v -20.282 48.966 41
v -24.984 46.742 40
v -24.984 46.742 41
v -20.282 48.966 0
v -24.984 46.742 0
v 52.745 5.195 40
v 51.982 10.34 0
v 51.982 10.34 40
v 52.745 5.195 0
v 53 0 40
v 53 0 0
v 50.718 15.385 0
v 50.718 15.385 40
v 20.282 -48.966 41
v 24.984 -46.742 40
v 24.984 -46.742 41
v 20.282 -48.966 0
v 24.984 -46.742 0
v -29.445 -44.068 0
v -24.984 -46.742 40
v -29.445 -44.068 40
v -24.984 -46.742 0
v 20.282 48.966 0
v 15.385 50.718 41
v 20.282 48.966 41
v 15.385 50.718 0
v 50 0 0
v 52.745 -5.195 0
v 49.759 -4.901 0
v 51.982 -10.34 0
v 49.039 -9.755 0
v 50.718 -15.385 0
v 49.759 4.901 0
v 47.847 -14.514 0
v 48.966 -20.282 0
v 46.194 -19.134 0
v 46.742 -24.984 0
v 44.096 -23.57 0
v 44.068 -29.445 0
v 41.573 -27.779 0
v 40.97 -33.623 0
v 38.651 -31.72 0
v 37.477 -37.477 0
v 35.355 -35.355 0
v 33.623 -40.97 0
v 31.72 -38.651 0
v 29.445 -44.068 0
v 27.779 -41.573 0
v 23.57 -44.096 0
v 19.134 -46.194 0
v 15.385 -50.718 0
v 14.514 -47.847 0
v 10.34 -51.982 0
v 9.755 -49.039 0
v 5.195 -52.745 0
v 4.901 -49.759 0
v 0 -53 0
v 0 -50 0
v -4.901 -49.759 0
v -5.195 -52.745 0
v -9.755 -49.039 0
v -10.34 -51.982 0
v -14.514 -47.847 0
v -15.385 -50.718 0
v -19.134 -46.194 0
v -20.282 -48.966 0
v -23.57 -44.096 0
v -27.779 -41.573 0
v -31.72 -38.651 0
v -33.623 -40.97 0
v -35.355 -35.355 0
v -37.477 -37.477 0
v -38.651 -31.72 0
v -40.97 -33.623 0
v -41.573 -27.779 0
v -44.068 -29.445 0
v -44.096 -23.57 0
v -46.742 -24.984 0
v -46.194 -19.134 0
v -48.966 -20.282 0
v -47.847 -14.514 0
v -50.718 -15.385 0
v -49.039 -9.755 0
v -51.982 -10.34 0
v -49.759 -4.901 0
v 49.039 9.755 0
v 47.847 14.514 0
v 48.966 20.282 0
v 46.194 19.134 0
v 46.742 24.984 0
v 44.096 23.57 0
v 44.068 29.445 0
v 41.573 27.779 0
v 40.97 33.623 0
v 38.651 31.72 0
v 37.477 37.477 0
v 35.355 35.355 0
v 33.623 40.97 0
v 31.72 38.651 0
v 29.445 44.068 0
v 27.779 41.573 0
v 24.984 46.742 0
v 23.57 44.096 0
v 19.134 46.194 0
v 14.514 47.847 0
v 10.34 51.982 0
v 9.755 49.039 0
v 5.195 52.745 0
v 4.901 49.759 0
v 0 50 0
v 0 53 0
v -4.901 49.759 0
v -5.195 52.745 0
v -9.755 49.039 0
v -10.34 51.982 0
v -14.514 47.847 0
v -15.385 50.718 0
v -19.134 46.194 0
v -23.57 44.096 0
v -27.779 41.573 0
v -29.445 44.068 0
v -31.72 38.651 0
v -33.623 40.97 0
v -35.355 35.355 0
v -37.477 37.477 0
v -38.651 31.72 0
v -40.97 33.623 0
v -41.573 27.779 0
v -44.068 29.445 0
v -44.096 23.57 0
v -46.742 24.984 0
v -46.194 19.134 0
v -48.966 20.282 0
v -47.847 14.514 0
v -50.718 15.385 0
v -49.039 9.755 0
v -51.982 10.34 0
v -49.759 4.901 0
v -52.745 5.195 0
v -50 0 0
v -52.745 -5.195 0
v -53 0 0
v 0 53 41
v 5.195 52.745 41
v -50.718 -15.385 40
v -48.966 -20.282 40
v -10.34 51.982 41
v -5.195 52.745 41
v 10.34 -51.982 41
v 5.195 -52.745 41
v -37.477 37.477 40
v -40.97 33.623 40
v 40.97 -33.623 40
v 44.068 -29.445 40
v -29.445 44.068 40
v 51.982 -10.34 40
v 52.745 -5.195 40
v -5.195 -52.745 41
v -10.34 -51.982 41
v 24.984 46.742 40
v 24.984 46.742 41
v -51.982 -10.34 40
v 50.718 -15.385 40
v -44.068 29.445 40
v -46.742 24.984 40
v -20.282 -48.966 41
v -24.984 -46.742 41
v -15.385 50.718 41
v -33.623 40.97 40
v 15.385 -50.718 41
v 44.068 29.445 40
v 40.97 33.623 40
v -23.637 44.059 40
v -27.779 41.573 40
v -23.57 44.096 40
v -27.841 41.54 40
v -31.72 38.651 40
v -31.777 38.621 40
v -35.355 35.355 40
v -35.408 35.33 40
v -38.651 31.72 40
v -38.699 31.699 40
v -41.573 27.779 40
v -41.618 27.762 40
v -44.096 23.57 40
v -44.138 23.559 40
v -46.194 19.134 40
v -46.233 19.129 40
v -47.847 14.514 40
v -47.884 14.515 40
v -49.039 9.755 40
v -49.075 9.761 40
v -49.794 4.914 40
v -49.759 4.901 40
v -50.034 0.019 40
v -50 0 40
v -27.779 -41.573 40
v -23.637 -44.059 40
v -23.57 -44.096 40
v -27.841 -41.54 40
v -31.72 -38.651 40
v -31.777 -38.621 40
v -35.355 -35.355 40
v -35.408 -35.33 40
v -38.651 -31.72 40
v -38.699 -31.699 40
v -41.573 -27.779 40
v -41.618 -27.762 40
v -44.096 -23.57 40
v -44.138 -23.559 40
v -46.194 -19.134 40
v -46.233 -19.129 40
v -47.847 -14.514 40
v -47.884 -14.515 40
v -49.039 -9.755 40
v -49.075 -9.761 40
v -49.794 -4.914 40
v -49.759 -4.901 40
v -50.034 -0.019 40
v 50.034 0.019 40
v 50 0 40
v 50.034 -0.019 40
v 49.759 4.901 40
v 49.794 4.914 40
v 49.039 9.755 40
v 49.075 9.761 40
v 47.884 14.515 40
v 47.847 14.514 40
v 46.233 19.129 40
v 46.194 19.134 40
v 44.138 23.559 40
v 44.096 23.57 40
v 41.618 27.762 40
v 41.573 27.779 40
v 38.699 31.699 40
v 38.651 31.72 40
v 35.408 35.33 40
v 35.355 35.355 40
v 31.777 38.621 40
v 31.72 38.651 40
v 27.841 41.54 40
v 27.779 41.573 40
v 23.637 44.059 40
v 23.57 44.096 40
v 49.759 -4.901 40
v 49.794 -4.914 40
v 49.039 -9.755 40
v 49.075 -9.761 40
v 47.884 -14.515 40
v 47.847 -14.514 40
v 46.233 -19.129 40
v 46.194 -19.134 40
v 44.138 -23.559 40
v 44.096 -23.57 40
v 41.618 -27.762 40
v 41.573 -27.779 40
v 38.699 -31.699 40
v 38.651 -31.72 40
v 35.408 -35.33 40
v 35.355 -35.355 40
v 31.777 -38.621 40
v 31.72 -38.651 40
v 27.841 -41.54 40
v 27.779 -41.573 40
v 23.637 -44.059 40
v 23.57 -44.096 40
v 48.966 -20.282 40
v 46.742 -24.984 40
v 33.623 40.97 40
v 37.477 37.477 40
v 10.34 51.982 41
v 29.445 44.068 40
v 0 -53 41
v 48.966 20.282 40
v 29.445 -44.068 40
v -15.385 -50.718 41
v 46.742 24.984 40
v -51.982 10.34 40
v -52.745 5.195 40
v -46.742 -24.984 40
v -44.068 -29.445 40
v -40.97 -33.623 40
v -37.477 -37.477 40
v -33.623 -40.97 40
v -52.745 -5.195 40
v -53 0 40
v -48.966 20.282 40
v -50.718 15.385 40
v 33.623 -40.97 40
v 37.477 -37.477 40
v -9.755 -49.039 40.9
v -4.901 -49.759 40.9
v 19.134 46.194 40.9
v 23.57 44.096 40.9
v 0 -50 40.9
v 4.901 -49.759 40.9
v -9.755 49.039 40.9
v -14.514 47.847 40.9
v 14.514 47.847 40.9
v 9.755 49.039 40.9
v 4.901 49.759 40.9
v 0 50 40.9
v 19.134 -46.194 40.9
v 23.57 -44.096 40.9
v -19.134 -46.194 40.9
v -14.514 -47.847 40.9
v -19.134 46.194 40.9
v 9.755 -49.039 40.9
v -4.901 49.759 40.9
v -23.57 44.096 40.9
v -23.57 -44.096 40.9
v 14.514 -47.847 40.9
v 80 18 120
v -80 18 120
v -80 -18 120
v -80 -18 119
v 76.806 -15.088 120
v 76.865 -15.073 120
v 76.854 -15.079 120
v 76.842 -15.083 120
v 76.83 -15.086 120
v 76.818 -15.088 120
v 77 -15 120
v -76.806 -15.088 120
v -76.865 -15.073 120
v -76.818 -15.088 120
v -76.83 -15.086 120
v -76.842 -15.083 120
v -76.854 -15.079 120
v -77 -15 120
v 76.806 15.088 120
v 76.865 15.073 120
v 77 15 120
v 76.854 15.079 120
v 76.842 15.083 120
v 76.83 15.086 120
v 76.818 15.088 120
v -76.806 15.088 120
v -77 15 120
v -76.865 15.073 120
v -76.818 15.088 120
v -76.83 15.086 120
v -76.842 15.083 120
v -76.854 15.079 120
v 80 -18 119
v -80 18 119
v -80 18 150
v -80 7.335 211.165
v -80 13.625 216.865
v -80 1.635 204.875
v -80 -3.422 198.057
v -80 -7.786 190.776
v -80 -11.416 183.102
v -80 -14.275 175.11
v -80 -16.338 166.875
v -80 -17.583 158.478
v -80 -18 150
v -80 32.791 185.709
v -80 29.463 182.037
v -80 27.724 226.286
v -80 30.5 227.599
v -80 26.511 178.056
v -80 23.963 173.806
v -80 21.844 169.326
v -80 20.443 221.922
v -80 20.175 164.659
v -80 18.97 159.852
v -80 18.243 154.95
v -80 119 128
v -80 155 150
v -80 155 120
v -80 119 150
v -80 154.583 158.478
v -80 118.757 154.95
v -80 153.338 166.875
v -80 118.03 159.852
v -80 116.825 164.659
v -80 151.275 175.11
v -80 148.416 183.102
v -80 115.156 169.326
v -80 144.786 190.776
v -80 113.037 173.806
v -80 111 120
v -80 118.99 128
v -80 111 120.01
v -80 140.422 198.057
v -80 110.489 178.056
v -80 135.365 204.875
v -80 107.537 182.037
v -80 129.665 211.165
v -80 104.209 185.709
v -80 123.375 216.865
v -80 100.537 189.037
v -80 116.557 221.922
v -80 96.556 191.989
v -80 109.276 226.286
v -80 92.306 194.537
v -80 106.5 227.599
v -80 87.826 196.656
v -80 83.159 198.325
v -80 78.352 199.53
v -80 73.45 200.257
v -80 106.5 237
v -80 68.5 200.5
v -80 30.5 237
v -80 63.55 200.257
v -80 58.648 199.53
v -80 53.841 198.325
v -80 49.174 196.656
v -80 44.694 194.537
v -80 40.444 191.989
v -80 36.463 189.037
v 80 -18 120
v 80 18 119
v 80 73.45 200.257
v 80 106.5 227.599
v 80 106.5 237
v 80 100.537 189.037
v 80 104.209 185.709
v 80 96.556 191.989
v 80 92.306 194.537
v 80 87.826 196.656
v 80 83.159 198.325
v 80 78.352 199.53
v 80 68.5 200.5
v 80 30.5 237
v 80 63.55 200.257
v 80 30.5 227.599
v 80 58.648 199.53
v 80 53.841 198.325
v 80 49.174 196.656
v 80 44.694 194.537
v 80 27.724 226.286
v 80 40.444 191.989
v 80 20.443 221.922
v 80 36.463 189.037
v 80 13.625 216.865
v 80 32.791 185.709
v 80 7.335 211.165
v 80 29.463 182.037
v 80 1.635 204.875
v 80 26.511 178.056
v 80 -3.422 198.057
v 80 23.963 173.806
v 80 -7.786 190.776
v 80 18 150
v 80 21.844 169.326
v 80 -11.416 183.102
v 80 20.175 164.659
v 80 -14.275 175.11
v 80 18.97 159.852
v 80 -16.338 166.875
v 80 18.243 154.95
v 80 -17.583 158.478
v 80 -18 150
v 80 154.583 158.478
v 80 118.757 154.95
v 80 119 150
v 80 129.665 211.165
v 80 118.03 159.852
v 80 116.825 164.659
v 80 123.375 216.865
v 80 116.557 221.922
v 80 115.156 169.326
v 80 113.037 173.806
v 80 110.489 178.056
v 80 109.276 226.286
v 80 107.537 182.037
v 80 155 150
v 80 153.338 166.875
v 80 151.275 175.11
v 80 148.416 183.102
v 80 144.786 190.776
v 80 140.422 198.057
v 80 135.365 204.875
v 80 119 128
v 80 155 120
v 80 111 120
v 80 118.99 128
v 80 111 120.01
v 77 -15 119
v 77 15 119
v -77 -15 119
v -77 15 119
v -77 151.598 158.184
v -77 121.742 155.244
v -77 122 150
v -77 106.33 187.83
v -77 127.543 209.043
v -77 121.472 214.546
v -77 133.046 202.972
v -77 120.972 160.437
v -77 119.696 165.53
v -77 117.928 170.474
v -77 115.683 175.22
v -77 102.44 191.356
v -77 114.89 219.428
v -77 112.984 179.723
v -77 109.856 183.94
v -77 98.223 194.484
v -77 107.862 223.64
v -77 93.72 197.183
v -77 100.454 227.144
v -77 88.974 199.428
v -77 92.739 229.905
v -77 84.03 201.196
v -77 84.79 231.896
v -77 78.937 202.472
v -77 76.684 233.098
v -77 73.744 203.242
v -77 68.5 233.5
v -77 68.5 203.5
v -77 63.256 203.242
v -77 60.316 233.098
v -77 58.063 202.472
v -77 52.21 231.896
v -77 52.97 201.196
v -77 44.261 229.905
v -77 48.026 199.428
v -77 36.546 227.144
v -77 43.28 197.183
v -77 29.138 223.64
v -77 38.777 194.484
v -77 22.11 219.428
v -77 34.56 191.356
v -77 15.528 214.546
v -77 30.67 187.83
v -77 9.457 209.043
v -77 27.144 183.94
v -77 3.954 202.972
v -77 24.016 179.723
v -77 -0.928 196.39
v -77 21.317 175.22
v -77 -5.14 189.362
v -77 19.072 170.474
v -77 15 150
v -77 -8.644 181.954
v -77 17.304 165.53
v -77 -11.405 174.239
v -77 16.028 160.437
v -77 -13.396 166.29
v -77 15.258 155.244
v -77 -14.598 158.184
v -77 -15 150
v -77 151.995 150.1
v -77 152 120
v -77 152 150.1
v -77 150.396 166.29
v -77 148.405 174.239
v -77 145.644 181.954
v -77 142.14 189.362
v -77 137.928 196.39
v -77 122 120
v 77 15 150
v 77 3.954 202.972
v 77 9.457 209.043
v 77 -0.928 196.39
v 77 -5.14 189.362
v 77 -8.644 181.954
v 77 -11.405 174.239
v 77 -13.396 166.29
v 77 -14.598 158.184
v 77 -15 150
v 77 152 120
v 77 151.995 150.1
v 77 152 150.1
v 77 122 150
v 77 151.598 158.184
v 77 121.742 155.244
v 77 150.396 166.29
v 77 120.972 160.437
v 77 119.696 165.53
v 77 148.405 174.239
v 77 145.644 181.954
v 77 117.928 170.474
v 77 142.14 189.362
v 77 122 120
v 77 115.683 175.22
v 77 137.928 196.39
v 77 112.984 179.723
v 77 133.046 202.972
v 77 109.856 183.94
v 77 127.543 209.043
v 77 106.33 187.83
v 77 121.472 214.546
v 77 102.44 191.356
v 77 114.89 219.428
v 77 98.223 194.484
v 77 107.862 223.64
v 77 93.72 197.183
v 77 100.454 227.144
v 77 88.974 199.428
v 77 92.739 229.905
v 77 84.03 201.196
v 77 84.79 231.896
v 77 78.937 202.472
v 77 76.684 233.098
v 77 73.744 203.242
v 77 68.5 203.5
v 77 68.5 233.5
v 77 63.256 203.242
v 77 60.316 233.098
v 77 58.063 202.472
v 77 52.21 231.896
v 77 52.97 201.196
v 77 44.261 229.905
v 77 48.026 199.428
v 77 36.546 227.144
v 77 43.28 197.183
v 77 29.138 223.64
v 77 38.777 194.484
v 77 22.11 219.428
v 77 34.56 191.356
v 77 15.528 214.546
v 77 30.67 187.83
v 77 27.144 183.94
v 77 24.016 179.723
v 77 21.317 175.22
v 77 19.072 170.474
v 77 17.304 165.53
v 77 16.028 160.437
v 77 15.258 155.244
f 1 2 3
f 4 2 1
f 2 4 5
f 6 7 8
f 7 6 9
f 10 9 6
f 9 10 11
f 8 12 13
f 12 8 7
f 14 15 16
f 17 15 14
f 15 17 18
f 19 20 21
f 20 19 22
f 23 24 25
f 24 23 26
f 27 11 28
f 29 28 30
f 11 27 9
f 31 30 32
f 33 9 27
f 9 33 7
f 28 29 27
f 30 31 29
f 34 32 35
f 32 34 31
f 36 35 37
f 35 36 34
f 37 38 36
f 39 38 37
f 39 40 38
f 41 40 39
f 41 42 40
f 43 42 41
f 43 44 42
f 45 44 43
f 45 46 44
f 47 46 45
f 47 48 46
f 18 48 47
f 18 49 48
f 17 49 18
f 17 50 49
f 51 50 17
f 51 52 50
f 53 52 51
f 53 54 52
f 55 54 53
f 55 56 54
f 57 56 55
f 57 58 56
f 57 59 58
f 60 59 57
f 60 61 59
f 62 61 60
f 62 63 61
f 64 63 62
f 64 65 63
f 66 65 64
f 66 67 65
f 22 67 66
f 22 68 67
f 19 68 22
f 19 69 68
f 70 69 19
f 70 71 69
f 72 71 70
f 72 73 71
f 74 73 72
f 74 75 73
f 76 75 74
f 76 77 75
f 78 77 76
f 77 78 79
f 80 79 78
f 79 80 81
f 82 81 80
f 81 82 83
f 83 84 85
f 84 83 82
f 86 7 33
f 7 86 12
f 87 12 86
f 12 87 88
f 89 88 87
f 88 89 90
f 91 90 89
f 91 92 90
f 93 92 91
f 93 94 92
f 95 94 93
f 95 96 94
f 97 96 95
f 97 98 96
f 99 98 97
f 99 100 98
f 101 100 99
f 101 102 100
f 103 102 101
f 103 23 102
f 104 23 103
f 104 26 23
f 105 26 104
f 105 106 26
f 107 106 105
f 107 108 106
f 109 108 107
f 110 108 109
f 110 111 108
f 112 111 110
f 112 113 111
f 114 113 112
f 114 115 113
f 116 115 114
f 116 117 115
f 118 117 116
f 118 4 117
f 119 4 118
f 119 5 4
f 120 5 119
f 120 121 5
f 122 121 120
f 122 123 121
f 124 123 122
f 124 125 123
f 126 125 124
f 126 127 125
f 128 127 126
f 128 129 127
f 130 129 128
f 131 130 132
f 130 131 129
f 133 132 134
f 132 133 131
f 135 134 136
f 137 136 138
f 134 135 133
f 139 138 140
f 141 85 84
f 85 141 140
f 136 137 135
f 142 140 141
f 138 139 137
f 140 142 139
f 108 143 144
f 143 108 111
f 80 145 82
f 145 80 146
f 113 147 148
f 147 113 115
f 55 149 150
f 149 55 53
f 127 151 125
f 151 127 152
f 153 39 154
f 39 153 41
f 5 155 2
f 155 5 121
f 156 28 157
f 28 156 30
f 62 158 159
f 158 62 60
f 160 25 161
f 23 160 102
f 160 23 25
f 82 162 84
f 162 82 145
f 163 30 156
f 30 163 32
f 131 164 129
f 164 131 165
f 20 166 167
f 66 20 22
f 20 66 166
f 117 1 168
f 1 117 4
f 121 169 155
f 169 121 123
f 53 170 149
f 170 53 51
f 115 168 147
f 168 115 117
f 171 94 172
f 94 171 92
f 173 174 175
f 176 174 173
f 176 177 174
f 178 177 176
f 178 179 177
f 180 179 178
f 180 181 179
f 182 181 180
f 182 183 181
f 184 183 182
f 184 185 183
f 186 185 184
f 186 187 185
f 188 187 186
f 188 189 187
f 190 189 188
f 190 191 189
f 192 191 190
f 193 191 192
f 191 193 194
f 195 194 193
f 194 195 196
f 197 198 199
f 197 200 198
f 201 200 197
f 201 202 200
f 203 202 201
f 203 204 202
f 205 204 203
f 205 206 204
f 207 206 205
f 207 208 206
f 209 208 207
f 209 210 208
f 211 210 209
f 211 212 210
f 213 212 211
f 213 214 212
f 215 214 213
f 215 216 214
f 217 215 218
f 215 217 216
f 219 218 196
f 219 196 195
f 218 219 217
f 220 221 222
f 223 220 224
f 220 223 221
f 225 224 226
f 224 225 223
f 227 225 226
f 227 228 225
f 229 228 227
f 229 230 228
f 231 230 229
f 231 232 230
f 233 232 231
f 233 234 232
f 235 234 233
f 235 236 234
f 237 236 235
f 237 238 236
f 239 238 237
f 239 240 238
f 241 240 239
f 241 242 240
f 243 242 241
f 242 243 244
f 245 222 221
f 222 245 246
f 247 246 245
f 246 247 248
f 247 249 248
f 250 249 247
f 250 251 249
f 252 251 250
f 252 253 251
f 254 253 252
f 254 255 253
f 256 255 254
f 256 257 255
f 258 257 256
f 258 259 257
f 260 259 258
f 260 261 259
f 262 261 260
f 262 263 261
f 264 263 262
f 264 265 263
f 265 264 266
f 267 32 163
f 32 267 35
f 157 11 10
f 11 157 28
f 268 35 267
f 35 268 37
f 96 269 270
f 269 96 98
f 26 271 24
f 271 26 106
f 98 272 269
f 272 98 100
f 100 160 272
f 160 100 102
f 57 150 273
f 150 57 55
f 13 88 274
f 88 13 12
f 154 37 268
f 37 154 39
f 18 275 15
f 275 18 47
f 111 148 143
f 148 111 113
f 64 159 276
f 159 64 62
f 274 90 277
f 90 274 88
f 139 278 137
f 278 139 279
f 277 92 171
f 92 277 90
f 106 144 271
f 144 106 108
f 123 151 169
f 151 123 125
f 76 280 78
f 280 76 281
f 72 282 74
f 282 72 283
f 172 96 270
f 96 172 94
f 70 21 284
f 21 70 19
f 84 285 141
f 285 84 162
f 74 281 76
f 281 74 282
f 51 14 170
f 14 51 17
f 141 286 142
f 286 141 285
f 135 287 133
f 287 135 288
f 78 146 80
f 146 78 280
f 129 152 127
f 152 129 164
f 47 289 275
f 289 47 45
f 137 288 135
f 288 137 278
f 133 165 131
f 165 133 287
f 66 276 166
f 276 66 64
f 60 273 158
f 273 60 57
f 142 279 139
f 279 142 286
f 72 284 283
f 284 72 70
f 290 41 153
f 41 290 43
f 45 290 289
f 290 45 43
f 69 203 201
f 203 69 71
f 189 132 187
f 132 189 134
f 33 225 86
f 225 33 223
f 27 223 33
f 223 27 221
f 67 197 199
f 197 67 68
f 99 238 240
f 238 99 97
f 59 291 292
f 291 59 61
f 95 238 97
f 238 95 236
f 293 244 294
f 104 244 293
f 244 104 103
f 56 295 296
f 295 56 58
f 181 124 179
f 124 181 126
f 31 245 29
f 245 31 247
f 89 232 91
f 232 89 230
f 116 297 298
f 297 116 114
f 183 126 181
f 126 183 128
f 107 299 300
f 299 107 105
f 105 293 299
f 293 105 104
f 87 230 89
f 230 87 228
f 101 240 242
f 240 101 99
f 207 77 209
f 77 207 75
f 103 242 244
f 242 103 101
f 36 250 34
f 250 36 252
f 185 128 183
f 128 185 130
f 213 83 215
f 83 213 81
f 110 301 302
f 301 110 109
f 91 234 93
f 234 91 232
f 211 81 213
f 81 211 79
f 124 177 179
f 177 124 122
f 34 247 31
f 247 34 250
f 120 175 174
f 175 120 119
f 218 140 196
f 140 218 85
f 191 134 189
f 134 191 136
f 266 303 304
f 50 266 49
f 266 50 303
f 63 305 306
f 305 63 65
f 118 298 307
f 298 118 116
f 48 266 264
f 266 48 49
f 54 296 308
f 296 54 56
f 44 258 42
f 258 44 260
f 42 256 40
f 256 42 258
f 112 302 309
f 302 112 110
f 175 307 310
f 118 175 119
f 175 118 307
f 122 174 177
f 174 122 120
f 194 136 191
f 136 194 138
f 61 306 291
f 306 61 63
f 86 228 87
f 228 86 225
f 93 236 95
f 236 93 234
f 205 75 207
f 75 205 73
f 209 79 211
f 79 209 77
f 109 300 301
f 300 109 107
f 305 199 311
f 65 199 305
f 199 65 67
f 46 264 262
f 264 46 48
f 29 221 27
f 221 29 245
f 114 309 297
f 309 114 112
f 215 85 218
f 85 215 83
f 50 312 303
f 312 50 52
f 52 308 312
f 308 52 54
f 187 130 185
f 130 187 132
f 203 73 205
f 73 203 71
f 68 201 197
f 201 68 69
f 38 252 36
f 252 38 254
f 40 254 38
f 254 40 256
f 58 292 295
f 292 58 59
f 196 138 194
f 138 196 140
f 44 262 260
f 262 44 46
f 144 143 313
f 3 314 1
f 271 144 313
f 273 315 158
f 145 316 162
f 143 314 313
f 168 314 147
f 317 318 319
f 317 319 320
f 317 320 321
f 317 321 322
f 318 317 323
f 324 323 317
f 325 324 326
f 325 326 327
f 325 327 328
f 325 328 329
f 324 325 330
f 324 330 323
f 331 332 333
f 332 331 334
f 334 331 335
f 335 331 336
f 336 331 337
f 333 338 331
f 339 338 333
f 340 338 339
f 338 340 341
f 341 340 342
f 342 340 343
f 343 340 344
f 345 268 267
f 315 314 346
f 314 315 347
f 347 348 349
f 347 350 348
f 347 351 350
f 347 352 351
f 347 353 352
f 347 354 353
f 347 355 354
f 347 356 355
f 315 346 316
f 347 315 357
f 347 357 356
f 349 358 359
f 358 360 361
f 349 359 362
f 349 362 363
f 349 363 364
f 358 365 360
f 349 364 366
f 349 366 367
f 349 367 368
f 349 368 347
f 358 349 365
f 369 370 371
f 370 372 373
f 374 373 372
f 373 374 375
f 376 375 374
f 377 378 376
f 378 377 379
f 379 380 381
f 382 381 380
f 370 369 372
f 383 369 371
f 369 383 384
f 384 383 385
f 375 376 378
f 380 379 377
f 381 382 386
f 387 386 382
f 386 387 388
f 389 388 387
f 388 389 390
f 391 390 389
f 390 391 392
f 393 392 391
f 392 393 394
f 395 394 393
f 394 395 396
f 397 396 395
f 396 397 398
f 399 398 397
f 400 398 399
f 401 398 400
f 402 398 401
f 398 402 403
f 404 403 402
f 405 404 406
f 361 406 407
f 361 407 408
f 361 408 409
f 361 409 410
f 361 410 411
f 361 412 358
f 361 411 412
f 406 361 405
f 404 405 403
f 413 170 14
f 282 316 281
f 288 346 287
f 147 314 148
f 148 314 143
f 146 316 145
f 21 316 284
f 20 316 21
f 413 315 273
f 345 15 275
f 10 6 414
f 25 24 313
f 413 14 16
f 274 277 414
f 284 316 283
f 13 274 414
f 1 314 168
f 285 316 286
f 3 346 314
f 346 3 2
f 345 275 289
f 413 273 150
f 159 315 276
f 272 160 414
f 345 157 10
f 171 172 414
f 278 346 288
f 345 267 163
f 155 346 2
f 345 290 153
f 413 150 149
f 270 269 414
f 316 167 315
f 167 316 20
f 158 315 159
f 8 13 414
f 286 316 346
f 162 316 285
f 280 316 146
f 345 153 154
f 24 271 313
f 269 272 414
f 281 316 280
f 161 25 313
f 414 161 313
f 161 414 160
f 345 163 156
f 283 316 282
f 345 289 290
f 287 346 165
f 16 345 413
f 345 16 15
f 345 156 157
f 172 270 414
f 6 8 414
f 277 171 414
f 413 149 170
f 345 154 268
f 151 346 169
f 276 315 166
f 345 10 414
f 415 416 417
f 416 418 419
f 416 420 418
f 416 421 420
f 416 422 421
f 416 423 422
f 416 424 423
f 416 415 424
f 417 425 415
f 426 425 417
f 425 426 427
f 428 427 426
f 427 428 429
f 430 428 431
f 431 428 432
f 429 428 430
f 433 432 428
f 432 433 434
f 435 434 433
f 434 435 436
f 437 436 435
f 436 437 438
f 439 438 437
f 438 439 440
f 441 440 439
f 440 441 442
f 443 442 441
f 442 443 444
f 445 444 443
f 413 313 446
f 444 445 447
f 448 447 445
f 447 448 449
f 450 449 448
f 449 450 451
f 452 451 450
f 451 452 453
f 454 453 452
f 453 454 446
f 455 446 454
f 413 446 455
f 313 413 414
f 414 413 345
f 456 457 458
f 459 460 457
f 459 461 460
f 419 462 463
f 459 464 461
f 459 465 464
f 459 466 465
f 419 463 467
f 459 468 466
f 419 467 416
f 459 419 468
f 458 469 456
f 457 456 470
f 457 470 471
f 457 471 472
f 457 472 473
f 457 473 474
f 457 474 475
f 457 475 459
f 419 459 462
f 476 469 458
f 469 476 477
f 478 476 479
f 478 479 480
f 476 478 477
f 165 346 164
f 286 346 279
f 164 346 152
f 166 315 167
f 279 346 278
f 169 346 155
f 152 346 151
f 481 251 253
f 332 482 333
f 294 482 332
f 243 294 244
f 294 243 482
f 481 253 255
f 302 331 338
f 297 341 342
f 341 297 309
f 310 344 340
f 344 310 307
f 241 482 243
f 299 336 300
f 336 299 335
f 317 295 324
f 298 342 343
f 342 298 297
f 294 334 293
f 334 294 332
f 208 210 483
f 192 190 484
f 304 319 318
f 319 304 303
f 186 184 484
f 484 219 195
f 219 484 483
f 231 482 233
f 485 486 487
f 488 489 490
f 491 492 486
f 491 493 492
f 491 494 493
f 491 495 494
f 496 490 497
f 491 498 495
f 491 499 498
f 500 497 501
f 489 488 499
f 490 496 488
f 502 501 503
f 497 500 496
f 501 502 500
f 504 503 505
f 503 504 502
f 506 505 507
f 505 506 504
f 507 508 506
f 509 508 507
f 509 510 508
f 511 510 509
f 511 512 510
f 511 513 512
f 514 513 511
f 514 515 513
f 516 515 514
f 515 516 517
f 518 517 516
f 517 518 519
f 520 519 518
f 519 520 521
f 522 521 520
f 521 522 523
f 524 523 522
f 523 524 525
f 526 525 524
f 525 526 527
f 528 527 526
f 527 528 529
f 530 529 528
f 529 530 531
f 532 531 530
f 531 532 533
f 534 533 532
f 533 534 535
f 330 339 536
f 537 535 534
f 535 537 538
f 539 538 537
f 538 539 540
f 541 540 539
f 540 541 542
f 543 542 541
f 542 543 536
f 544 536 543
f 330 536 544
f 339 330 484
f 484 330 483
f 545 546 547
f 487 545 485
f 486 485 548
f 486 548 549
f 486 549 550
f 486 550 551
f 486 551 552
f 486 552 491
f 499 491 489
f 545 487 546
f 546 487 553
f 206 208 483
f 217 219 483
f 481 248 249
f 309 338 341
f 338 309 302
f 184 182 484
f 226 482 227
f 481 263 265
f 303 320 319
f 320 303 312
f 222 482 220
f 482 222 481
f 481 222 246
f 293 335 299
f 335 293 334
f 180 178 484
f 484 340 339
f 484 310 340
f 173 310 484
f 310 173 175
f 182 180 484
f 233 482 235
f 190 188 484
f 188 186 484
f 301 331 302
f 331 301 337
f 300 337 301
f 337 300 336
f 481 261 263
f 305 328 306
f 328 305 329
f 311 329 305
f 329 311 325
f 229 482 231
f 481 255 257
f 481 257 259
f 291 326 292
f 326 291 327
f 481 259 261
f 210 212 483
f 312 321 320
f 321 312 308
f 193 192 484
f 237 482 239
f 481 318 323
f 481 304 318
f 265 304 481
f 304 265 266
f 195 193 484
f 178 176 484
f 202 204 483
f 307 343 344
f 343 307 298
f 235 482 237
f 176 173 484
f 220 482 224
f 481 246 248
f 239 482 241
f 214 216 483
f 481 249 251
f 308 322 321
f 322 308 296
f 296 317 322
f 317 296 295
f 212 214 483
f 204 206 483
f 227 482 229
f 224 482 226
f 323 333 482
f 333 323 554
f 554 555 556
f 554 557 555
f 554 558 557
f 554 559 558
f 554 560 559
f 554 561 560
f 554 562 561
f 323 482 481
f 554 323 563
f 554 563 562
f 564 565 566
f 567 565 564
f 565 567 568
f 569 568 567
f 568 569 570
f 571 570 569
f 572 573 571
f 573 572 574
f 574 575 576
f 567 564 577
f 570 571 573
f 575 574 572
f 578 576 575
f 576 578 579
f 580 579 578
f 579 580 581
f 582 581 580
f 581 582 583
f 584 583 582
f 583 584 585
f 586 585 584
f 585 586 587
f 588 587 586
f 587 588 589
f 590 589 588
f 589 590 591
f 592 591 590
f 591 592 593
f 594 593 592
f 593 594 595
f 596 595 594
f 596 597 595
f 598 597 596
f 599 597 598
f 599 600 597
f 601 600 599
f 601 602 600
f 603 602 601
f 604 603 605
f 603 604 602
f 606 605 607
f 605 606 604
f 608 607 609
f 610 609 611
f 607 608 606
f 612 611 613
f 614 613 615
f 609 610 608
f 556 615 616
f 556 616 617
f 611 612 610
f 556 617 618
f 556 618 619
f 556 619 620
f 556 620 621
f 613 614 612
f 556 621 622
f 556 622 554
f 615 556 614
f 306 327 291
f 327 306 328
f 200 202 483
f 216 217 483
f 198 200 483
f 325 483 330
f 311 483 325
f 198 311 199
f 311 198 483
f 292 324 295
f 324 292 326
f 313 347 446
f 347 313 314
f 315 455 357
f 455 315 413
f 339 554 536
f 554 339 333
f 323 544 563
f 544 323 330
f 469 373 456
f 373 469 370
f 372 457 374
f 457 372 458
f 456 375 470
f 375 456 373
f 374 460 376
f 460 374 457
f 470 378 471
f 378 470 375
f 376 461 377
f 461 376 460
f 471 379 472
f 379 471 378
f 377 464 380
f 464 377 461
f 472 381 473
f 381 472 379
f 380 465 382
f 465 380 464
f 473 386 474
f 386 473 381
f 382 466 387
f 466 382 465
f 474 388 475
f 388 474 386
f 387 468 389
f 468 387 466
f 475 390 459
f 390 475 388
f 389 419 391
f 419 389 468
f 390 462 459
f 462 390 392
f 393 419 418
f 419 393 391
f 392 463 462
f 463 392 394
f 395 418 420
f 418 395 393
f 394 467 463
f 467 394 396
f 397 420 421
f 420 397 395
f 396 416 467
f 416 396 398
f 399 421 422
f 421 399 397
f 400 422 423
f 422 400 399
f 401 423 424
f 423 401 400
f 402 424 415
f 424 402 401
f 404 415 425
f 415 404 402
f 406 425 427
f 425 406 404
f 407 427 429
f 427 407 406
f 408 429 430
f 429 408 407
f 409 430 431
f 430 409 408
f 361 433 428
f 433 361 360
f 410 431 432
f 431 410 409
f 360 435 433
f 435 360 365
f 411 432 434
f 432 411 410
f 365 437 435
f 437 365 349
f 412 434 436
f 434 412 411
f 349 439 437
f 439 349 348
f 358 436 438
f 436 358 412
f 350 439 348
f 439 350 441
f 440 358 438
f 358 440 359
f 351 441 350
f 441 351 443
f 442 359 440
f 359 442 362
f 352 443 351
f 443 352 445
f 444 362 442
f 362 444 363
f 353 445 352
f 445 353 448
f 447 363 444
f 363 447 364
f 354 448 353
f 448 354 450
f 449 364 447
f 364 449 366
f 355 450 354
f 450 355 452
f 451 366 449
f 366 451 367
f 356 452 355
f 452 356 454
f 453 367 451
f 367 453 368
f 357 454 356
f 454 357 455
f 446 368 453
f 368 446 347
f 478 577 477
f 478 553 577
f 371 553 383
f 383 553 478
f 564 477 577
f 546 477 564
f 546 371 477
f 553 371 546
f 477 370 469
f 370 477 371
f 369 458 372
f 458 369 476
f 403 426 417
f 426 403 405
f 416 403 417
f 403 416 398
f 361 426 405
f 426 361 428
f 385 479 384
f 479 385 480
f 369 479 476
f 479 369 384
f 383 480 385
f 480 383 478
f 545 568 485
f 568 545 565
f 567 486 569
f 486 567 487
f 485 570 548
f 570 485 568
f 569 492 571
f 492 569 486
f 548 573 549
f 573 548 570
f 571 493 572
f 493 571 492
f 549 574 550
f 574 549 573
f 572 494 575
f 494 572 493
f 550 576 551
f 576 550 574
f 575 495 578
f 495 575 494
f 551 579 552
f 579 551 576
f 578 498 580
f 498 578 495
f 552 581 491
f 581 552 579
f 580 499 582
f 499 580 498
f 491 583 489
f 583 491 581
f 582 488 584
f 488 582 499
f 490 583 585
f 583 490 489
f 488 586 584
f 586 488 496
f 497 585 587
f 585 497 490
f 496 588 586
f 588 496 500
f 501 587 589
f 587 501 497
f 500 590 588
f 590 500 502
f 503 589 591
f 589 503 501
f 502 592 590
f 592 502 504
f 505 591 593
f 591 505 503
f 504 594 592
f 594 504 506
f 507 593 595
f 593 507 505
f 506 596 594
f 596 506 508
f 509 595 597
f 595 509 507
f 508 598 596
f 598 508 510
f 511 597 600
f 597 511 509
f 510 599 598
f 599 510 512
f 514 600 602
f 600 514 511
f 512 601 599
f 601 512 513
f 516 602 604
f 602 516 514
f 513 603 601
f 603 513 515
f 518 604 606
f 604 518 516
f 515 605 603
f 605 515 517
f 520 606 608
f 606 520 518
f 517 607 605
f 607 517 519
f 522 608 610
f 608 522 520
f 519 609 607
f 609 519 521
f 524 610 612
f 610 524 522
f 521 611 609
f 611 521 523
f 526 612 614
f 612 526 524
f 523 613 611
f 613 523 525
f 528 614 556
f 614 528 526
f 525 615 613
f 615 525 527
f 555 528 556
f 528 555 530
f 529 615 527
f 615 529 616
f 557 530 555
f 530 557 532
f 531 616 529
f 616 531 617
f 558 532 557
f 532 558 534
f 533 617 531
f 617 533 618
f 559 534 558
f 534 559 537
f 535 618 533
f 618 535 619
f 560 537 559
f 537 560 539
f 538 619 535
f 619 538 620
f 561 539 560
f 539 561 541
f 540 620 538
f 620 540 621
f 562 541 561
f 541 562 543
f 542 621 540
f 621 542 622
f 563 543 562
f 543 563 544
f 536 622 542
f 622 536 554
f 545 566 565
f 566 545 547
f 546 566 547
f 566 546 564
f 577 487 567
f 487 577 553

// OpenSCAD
// ============================================================
//  Klimaanlage Fenster-Durchführungsadapter
// ============================================================

// --- Schlauch ---
schlauch_aussen_d = 99.5;  // Außen-Ø Klimaanlagen-Schlauch
wandstaerke       = 3.0;
aufsteck_tiefe    = 40;
spiel             = 0.5;

// --- Kanalquerschnitt ---
kanal_breite   = 160;
kanal_hoehe    = 30;
kanal_laenge   = 30;
uebergang_hoehe = 80;

// --- Fenster-Maße ---
rahmen_dicke    = 95;   // Dicke des Fensterrahmens [mm]
ueberhang_tiefe = 20;   // Tiefe der Klemmnase (greift hinter Rahmen) [mm]
spaltbreite     = 60;   // Spaltbreite beim gekippten Fenster [mm]

// --- Bogen + Auslass ---
// biegeradius wird automatisch aus rahmen_dicke berechnet:
// Innenmaß des U = 2*br - (kh+2ws) >= rahmen_dicke  → br >= (rahmen_dicke + kh + 2ws)/2
// +3mm Spiel damit der Adapter leicht aufgesteckt werden kann
biegeradius    = (rahmen_dicke + kanal_hoehe + 2*wandstaerke) / 2 + 3;
auslauf_laenge = 30;   // gerades Stück am Auslass (außen, zeigt nach unten)
nasen_dicke    = 8;    // Dicke der Klemmnase [mm]
fuss_hoehe     = 13;   // Höhe des Druckfußes am Bogenscheitel [mm]

$fn = 64;

// --- Berechnete Hilfswerte ---
adapter_innen_r = (schlauch_aussen_d + spiel) / 2;
adapter_aussen_r = adapter_innen_r + wandstaerke;
kw = kanal_breite;
kh = kanal_hoehe;
ws = wandstaerke;
br = biegeradius;

z_uebergang = aufsteck_tiefe;
z_kanal     = aufsteck_tiefe + uebergang_hoehe;
z_knick     = z_kanal + kanal_laenge;

// Sicherheits-Prüfung: Spaltbreite muss >= Kanaltiefe sein
// (kh + 2*ws = 36mm muss durch den Spalt von 60mm passen ✓)

// ============================================================
union() {
    aufsteck_muffe();
    translate([0, 0, z_uebergang]) uebergang_rund_flach();
    translate([0, 0, z_kanal])     senkrechter_kanal();
    translate([0, 0, z_knick])     l_haken();
}

// ============================================================
module aufsteck_muffe() {
    difference() {
        cylinder(r = adapter_aussen_r, h = aufsteck_tiefe);
        translate([0, 0, -0.1])
            cylinder(r = adapter_innen_r, h = aufsteck_tiefe + 0.2);
    }
}

module uebergang_rund_flach() {
    difference() {
        hull() {
            cylinder(r = adapter_aussen_r, h = 1);
            translate([-(kw/2), -(kh/2 + ws), uebergang_hoehe - 1])
                cube([kw, kh + 2*ws, 1]);
        }
        hull() {
            translate([0, 0, -0.1]) cylinder(r = adapter_innen_r, h = 1);
            translate([-(kw/2 - ws), -(kh/2), uebergang_hoehe - 1])
                cube([kw - 2*ws, kh, 1.2]);
        }
    }
}

module senkrechter_kanal() {
    difference() {
        translate([-(kw/2), -(kh/2 + ws), 0])
            cube([kw, kh + 2*ws, kanal_laenge]);
        translate([-(kw/2 - ws), -(kh/2), -0.1])
            cube([kw - 2*ws, kh, kanal_laenge + 0.2]);
    }
}

// ============================================================
// 180°-Bogen + gerades Auslaufstück + Klemmnase
//
// Geometrie (lokal, Z=0 = Oberkante senkrechter Kanal):
//
//   End 1: (0,   0,  0)  Richtung +Z  → Anschluss senkrechter Kanal (innen)
//   End 2: (0, 2*br, 0)  Richtung -Z  → Auslass zeigt nach unten (außen)
//
//   Innenmaß des U = 2*br - (kh+2ws) = rahmen_dicke + Spiel
//
//   Klemmnase: dünne Lippe am Ende des Auslaufs,
//   greift ueberhang_tiefe mm hinter den Fensterrahmen

module l_haken() {
    arc_size = br + kh/2 + ws + 2;
    y_innen  = 2*br - (kh/2 + ws);  // Innenfläche des Außenschenkels

    difference() {
        union() {
            // 1) 180°-Bogen
            translate([0, br, 0])
            rotate([90, 0, -90])
            intersection() {
                rotate_extrude($fn = $fn)
                    translate([br, 0])
                        square([kh + 2*ws, kw], center = true);
                translate([-arc_size, 0, -(kw/2 + 1)])
                    cube([2 * arc_size, arc_size, kw + 2]);
            }

            // 2) Gerades Auslaufstück
            translate([-(kw/2), y_innen, -auslauf_laenge])
                cube([kw, kh + 2*ws, auslauf_laenge]);

            // 3) Druckfuß am Bogenscheitel
            //    Gibt eine flache Standfläche beim umgekehrten Drucken (kein Brim nötig)
            //    Sitzt am höchsten Punkt des Bogens: Y=br, Z=br+(kh/2+ws)
            translate([-(kw/2), br - (kh/2 + ws) - 20, br + (kh/2) - fuss_hoehe/2-3])
                cube([kw, kh + 2*ws + 40, fuss_hoehe]);

            // 4) Keilförmige Klemmnase (45°-Keil → kein steiler Überhang beim Druck)
            //    hull() zwischen voller Basis (am Auslauf) und Spitze (ueberhang_tiefe entfernt)
            //    Beim umgekehrten Druck: die geneigte Fläche ist selbsttragend
            hull() {
                // Basis: volle Höhe nasen_dicke, direkt an der Auslaufwand
                translate([-(kw/2), y_innen - 0.01, -auslauf_laenge])
                    cube([kw, 0.01, nasen_dicke]);
                // Spitze: Höhe 0, nasen_dicke entfernt → 45° Winkel
                translate([-(kw/2), y_innen - nasen_dicke, -auslauf_laenge])
                    cube([kw, 0.01, 0.01]);
            }
        }

        union() {
            // Bogen-Hohlraum
            translate([0, br, 0])
            rotate([90, 0, -90])
            intersection() {
                rotate_extrude($fn = $fn)
                    translate([br, 0])
                        square([kh, kw - 2*ws], center = true);
                translate([-arc_size, 0, -(kw/2 + 1)])
                    cube([2 * arc_size, arc_size, kw + 2]);
            }

            // Auslauf-Hohlraum
            translate([-(kw/2 - ws), 2*br - kh/2, -auslauf_laenge - 0.1])
                cube([kw - 2*ws, kh, auslauf_laenge + 0.2]);
        }
    }
}
